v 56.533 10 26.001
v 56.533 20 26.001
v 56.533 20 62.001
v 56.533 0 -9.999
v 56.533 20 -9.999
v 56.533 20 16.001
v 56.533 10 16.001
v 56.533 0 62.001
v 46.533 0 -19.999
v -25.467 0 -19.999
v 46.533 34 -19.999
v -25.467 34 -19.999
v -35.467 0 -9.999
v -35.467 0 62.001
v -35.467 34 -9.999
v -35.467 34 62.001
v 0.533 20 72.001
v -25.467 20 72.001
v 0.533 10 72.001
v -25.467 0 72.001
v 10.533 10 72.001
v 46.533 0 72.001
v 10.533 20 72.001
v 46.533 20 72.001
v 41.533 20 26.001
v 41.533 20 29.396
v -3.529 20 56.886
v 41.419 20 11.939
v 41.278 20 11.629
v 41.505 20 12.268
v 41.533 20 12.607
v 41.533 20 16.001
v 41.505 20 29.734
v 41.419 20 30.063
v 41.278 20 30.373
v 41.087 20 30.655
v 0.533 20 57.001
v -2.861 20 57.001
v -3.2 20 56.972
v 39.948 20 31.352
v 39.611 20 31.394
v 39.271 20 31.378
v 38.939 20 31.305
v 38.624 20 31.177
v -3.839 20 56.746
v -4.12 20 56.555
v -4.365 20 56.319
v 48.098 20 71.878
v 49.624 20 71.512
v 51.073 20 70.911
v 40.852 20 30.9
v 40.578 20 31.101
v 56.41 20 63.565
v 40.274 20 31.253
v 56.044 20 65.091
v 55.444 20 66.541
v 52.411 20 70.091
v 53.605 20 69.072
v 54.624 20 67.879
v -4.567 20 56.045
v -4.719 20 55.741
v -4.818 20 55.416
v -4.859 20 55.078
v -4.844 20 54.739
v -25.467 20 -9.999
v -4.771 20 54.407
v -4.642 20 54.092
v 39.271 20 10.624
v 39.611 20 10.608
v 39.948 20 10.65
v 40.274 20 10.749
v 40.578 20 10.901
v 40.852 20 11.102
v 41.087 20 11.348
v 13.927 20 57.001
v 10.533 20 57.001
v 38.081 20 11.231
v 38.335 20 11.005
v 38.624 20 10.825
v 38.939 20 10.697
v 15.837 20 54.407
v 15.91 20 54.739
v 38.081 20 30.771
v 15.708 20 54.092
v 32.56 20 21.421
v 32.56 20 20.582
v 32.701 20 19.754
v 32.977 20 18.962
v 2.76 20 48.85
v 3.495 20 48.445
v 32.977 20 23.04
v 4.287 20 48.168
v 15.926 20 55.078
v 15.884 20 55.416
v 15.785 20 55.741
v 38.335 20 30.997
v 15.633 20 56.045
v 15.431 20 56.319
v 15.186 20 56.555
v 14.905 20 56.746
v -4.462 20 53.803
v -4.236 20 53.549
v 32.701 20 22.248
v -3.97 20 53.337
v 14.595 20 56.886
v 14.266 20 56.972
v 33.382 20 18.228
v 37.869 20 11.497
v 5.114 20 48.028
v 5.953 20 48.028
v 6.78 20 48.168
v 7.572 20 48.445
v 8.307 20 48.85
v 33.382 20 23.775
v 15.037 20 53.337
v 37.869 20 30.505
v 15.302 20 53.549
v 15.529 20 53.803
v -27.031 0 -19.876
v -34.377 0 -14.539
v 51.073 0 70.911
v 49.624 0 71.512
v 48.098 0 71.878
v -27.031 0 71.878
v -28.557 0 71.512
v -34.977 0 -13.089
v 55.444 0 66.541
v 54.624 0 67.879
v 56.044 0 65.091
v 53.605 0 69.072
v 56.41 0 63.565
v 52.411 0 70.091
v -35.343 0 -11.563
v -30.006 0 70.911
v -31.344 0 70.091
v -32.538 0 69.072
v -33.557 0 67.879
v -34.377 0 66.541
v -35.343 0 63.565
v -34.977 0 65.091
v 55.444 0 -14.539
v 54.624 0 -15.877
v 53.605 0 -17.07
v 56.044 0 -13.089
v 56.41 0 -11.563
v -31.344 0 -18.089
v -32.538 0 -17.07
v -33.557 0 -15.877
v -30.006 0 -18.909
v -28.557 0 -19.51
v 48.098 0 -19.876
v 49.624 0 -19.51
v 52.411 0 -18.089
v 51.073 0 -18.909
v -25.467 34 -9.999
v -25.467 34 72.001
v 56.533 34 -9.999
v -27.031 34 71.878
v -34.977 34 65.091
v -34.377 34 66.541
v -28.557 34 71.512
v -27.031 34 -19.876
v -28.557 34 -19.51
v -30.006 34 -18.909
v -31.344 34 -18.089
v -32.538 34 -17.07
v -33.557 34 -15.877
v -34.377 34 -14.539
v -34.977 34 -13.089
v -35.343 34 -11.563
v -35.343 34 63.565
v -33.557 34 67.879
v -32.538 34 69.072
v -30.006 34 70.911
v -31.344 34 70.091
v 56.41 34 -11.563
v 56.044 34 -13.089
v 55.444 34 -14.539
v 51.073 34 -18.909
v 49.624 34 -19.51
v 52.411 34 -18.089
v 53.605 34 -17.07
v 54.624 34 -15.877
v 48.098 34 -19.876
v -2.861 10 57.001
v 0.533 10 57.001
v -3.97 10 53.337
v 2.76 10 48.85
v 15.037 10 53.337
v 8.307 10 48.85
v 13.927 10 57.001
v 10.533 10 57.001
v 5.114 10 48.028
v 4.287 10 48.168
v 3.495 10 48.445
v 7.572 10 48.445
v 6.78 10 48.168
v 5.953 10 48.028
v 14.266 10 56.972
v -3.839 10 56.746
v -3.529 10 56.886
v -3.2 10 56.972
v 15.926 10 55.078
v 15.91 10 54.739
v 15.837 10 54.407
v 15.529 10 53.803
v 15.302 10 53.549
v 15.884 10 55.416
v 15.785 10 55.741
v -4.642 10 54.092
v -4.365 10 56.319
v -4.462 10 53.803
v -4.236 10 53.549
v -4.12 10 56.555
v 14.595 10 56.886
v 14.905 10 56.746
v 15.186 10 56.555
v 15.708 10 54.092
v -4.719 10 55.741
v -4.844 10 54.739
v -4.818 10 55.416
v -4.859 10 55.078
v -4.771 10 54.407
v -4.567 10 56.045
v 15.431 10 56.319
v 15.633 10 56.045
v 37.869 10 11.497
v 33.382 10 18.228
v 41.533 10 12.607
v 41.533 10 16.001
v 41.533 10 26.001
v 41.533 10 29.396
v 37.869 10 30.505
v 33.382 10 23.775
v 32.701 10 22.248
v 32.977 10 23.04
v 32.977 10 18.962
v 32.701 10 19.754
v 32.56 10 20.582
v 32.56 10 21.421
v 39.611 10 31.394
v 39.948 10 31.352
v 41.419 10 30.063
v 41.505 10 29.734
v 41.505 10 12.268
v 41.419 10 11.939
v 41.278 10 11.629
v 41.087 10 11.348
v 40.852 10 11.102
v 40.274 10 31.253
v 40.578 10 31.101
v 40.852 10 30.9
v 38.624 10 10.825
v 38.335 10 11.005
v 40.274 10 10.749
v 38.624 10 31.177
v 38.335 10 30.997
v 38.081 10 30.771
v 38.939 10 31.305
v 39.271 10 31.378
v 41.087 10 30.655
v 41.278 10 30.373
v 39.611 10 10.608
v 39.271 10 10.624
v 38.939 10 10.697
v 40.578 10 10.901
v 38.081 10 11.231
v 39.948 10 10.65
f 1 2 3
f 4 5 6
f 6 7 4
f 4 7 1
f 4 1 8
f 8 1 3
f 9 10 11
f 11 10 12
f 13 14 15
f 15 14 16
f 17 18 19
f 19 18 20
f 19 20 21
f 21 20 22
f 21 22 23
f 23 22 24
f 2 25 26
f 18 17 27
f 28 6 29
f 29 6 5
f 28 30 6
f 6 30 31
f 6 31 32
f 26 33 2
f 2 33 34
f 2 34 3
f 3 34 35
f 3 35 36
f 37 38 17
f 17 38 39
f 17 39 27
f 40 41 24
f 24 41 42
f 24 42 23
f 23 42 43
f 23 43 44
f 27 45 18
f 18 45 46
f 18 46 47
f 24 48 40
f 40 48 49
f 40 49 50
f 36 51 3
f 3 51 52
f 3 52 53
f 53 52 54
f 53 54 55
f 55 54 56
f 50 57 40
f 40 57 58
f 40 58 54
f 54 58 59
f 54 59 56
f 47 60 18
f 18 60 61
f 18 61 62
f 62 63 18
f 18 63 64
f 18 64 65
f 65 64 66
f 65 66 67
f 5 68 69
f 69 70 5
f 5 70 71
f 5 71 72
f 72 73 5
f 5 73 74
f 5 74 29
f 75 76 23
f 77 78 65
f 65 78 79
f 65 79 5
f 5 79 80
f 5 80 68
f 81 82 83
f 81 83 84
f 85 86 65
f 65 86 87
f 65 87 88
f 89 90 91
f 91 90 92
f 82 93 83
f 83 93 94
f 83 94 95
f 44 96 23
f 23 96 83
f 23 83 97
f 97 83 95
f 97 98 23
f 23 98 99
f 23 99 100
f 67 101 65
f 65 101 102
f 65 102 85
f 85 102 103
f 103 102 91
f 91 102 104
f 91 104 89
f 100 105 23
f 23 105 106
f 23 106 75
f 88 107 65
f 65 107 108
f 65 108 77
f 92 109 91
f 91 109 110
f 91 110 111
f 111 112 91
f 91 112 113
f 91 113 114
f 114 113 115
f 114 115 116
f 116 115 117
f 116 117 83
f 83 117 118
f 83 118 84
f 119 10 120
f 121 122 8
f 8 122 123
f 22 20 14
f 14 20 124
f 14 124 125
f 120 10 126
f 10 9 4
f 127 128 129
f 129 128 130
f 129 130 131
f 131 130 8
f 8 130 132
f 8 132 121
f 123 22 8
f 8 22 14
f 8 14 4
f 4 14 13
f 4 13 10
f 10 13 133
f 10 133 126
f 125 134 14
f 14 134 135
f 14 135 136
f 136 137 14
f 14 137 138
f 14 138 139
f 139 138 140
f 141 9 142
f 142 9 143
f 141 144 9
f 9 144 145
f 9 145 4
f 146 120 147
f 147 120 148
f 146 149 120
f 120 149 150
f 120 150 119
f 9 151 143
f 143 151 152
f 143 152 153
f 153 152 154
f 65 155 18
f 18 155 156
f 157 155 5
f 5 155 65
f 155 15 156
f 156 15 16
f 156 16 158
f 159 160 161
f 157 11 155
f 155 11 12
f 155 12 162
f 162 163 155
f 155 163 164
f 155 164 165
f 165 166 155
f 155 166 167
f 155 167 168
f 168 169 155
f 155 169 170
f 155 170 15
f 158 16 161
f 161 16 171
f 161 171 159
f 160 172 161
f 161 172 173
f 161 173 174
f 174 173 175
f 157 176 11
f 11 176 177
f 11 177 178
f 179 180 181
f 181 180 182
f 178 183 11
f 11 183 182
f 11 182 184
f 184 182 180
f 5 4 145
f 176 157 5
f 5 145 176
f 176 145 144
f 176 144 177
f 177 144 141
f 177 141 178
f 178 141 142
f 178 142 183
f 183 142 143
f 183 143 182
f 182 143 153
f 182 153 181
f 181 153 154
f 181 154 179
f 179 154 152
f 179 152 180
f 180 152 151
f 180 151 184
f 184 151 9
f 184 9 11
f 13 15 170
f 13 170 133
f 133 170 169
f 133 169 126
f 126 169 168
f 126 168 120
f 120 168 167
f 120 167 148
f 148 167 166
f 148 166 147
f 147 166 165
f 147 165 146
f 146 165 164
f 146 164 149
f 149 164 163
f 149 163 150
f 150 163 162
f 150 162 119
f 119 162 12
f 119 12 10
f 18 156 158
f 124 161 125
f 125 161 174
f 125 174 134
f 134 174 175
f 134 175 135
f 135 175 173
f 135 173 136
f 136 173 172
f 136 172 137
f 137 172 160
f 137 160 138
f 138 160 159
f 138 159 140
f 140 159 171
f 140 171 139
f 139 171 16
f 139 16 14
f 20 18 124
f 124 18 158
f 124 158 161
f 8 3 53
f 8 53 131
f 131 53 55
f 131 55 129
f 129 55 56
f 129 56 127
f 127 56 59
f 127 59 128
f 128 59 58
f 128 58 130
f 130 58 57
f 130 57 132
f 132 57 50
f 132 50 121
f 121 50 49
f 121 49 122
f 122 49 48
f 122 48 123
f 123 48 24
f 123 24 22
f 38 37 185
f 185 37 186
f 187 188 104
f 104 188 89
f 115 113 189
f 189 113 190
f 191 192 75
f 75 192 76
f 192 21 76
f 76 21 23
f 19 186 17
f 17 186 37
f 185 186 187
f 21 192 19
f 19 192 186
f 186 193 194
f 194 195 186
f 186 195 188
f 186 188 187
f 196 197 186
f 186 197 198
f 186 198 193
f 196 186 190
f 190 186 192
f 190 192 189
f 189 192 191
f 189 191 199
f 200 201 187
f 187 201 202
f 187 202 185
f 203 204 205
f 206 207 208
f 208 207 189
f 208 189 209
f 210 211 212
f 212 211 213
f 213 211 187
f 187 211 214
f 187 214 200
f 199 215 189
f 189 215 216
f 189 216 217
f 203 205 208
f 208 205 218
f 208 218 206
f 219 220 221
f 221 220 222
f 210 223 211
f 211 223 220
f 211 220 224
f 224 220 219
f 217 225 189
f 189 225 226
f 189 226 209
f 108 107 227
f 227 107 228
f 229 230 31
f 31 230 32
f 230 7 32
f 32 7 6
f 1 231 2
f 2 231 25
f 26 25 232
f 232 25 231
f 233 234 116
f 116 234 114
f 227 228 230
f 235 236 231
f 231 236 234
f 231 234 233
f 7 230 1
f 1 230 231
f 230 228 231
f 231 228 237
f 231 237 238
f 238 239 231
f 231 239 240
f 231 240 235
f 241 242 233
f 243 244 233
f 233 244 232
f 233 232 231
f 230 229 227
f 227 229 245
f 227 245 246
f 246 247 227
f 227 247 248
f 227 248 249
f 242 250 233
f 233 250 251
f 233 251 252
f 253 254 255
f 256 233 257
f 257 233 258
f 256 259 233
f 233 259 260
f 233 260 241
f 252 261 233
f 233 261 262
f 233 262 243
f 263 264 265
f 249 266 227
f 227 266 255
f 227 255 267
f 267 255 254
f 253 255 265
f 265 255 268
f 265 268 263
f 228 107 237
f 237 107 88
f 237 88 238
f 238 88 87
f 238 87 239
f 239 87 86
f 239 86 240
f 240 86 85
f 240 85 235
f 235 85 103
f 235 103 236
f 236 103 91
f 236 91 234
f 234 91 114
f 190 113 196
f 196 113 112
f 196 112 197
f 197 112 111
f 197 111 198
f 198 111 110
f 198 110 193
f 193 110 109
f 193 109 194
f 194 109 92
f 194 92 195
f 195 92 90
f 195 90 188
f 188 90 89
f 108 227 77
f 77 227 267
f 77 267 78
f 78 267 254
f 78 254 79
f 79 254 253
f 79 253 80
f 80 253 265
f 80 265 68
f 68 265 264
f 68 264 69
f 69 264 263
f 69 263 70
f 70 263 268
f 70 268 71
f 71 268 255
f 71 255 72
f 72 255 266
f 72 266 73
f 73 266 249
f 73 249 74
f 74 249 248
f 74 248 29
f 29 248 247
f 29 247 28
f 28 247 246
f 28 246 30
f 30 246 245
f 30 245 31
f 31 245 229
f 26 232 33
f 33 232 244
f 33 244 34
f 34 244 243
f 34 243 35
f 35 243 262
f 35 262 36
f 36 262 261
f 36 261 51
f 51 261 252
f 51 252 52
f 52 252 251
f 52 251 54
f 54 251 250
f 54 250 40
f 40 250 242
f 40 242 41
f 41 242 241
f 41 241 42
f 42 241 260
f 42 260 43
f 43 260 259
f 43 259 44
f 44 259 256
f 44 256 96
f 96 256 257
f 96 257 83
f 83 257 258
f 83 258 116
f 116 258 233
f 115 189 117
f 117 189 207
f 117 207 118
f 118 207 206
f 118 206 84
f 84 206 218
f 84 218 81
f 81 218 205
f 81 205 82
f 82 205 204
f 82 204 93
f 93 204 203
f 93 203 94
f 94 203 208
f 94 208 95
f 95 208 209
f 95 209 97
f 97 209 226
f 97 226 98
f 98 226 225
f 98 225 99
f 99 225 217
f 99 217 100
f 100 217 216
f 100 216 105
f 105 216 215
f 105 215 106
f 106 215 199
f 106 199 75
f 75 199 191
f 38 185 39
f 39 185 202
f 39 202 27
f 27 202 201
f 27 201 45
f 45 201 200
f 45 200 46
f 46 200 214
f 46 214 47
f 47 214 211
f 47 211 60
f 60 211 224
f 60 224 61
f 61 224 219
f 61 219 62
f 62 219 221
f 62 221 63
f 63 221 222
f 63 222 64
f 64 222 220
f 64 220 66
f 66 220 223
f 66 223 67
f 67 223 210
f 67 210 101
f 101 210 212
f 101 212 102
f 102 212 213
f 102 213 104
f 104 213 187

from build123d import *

# Parameters (mm, degrees)
SKETCH1_W           = 92
SKETCH1_H           = 92
BOSS_EXTRUDE1_DEPTH = 20
BOSS_EXTRUDE2_DEPTH = 34
FILLET1_R           = 10
CUT_EXTRUDE2_DEPTH  = 10
CUT_EXTRUDE3_DEPTH  = 10
FILLET2_R           = 5
FILLET3_R           = 2


with BuildPart() as part:
    # Sketch1 → Boss-Extrude1 (new body)
    with BuildSketch(Plane(origin=(0, 0, 0), x_dir=(1, 0, 0), z_dir=(0, 1, 0))):
        with Locations((10.533475027, -26.001062699)):
            Rectangle(SKETCH1_W, SKETCH1_H)
    extrude(amount=BOSS_EXTRUDE1_DEPTH)

    # Sketch1<3> → Boss-Extrude2 (add)
    with BuildSketch(Plane(origin=(0, 0, 0), x_dir=(1, 0, 0), z_dir=(0, 1, 0))):
        Polygon((-35.466524973, 19.998937301), (-35.466524973, -72.001062699), (-25.466524973, -72.001062699), (-25.466524973, 9.998937301), (56.533475027, 9.998937301), (56.533475027, 19.998937301), align=None)
    extrude(amount=BOSS_EXTRUDE2_DEPTH)

    # Fillet1
    fillet1_edges = [part.edges().sort_by_distance(p)[0] for p in [
        (56.533475027, 17, -19.998937301),
        (-35.466524973, 17, -19.998937301),
        (-35.466524973, 17, 72.001062699),
        (56.533475027, 10, 72.001062699),
    ]]
    fillet(fillet1_edges, radius=FILLET1_R)

    # Sketch5 → Cut-Extrude2 (cut)
    with BuildSketch(Plane(origin=(0, 20, 0), x_dir=(1, 0, 0), z_dir=(0, 1, 0))):
        Polygon((0.533475027, -72.001062699), (10.533475027, -72.001062699), (10.533475027, -57.001062699), (20.532072448, -57.001062699), (5.533475027, -47.001062699), (-9.466524973, -57.001062699), (0.533475027, -57.001062699), align=None)
    extrude(amount=-CUT_EXTRUDE2_DEPTH, mode=Mode.SUBTRACT)

    # Sketch6 → Cut-Extrude3 (cut)
    with BuildSketch(Plane(origin=(0, 20, 0), x_dir=(1, 0, 0), z_dir=(0, 1, 0))):
        Polygon((41.533475027, -26.001062699), (56.533475027, -26.001062699), (56.533475027, -16.001062699), (41.533475027, -16.001062699), (41.533475027, -6.001062699), (31.533475027, -21.001062699), (41.533475027, -36.001062699), align=None)
    extrude(amount=-CUT_EXTRUDE3_DEPTH, mode=Mode.SUBTRACT)

    # Fillet2
    fillet2_edges = [part.edges().sort_by_distance(p)[0] for p in [
        (31.533475027, 15, 21.001062699),
        (5.533475027, 15, 47.001062699),
    ]]
    fillet(fillet2_edges, radius=FILLET2_R)

    # Fillet3
    fillet3_edges = [part.edges().sort_by_distance(p)[0] for p in [
        (41.533475027, 15, 6.001062699),
        (41.533475027, 15, 36.001062699),
        (20.532072448, 15, 57.001062699),
        (-9.466524973, 15, 57.001062699),
    ]]
    fillet(fillet3_edges, radius=FILLET3_R)


solid = part.part
